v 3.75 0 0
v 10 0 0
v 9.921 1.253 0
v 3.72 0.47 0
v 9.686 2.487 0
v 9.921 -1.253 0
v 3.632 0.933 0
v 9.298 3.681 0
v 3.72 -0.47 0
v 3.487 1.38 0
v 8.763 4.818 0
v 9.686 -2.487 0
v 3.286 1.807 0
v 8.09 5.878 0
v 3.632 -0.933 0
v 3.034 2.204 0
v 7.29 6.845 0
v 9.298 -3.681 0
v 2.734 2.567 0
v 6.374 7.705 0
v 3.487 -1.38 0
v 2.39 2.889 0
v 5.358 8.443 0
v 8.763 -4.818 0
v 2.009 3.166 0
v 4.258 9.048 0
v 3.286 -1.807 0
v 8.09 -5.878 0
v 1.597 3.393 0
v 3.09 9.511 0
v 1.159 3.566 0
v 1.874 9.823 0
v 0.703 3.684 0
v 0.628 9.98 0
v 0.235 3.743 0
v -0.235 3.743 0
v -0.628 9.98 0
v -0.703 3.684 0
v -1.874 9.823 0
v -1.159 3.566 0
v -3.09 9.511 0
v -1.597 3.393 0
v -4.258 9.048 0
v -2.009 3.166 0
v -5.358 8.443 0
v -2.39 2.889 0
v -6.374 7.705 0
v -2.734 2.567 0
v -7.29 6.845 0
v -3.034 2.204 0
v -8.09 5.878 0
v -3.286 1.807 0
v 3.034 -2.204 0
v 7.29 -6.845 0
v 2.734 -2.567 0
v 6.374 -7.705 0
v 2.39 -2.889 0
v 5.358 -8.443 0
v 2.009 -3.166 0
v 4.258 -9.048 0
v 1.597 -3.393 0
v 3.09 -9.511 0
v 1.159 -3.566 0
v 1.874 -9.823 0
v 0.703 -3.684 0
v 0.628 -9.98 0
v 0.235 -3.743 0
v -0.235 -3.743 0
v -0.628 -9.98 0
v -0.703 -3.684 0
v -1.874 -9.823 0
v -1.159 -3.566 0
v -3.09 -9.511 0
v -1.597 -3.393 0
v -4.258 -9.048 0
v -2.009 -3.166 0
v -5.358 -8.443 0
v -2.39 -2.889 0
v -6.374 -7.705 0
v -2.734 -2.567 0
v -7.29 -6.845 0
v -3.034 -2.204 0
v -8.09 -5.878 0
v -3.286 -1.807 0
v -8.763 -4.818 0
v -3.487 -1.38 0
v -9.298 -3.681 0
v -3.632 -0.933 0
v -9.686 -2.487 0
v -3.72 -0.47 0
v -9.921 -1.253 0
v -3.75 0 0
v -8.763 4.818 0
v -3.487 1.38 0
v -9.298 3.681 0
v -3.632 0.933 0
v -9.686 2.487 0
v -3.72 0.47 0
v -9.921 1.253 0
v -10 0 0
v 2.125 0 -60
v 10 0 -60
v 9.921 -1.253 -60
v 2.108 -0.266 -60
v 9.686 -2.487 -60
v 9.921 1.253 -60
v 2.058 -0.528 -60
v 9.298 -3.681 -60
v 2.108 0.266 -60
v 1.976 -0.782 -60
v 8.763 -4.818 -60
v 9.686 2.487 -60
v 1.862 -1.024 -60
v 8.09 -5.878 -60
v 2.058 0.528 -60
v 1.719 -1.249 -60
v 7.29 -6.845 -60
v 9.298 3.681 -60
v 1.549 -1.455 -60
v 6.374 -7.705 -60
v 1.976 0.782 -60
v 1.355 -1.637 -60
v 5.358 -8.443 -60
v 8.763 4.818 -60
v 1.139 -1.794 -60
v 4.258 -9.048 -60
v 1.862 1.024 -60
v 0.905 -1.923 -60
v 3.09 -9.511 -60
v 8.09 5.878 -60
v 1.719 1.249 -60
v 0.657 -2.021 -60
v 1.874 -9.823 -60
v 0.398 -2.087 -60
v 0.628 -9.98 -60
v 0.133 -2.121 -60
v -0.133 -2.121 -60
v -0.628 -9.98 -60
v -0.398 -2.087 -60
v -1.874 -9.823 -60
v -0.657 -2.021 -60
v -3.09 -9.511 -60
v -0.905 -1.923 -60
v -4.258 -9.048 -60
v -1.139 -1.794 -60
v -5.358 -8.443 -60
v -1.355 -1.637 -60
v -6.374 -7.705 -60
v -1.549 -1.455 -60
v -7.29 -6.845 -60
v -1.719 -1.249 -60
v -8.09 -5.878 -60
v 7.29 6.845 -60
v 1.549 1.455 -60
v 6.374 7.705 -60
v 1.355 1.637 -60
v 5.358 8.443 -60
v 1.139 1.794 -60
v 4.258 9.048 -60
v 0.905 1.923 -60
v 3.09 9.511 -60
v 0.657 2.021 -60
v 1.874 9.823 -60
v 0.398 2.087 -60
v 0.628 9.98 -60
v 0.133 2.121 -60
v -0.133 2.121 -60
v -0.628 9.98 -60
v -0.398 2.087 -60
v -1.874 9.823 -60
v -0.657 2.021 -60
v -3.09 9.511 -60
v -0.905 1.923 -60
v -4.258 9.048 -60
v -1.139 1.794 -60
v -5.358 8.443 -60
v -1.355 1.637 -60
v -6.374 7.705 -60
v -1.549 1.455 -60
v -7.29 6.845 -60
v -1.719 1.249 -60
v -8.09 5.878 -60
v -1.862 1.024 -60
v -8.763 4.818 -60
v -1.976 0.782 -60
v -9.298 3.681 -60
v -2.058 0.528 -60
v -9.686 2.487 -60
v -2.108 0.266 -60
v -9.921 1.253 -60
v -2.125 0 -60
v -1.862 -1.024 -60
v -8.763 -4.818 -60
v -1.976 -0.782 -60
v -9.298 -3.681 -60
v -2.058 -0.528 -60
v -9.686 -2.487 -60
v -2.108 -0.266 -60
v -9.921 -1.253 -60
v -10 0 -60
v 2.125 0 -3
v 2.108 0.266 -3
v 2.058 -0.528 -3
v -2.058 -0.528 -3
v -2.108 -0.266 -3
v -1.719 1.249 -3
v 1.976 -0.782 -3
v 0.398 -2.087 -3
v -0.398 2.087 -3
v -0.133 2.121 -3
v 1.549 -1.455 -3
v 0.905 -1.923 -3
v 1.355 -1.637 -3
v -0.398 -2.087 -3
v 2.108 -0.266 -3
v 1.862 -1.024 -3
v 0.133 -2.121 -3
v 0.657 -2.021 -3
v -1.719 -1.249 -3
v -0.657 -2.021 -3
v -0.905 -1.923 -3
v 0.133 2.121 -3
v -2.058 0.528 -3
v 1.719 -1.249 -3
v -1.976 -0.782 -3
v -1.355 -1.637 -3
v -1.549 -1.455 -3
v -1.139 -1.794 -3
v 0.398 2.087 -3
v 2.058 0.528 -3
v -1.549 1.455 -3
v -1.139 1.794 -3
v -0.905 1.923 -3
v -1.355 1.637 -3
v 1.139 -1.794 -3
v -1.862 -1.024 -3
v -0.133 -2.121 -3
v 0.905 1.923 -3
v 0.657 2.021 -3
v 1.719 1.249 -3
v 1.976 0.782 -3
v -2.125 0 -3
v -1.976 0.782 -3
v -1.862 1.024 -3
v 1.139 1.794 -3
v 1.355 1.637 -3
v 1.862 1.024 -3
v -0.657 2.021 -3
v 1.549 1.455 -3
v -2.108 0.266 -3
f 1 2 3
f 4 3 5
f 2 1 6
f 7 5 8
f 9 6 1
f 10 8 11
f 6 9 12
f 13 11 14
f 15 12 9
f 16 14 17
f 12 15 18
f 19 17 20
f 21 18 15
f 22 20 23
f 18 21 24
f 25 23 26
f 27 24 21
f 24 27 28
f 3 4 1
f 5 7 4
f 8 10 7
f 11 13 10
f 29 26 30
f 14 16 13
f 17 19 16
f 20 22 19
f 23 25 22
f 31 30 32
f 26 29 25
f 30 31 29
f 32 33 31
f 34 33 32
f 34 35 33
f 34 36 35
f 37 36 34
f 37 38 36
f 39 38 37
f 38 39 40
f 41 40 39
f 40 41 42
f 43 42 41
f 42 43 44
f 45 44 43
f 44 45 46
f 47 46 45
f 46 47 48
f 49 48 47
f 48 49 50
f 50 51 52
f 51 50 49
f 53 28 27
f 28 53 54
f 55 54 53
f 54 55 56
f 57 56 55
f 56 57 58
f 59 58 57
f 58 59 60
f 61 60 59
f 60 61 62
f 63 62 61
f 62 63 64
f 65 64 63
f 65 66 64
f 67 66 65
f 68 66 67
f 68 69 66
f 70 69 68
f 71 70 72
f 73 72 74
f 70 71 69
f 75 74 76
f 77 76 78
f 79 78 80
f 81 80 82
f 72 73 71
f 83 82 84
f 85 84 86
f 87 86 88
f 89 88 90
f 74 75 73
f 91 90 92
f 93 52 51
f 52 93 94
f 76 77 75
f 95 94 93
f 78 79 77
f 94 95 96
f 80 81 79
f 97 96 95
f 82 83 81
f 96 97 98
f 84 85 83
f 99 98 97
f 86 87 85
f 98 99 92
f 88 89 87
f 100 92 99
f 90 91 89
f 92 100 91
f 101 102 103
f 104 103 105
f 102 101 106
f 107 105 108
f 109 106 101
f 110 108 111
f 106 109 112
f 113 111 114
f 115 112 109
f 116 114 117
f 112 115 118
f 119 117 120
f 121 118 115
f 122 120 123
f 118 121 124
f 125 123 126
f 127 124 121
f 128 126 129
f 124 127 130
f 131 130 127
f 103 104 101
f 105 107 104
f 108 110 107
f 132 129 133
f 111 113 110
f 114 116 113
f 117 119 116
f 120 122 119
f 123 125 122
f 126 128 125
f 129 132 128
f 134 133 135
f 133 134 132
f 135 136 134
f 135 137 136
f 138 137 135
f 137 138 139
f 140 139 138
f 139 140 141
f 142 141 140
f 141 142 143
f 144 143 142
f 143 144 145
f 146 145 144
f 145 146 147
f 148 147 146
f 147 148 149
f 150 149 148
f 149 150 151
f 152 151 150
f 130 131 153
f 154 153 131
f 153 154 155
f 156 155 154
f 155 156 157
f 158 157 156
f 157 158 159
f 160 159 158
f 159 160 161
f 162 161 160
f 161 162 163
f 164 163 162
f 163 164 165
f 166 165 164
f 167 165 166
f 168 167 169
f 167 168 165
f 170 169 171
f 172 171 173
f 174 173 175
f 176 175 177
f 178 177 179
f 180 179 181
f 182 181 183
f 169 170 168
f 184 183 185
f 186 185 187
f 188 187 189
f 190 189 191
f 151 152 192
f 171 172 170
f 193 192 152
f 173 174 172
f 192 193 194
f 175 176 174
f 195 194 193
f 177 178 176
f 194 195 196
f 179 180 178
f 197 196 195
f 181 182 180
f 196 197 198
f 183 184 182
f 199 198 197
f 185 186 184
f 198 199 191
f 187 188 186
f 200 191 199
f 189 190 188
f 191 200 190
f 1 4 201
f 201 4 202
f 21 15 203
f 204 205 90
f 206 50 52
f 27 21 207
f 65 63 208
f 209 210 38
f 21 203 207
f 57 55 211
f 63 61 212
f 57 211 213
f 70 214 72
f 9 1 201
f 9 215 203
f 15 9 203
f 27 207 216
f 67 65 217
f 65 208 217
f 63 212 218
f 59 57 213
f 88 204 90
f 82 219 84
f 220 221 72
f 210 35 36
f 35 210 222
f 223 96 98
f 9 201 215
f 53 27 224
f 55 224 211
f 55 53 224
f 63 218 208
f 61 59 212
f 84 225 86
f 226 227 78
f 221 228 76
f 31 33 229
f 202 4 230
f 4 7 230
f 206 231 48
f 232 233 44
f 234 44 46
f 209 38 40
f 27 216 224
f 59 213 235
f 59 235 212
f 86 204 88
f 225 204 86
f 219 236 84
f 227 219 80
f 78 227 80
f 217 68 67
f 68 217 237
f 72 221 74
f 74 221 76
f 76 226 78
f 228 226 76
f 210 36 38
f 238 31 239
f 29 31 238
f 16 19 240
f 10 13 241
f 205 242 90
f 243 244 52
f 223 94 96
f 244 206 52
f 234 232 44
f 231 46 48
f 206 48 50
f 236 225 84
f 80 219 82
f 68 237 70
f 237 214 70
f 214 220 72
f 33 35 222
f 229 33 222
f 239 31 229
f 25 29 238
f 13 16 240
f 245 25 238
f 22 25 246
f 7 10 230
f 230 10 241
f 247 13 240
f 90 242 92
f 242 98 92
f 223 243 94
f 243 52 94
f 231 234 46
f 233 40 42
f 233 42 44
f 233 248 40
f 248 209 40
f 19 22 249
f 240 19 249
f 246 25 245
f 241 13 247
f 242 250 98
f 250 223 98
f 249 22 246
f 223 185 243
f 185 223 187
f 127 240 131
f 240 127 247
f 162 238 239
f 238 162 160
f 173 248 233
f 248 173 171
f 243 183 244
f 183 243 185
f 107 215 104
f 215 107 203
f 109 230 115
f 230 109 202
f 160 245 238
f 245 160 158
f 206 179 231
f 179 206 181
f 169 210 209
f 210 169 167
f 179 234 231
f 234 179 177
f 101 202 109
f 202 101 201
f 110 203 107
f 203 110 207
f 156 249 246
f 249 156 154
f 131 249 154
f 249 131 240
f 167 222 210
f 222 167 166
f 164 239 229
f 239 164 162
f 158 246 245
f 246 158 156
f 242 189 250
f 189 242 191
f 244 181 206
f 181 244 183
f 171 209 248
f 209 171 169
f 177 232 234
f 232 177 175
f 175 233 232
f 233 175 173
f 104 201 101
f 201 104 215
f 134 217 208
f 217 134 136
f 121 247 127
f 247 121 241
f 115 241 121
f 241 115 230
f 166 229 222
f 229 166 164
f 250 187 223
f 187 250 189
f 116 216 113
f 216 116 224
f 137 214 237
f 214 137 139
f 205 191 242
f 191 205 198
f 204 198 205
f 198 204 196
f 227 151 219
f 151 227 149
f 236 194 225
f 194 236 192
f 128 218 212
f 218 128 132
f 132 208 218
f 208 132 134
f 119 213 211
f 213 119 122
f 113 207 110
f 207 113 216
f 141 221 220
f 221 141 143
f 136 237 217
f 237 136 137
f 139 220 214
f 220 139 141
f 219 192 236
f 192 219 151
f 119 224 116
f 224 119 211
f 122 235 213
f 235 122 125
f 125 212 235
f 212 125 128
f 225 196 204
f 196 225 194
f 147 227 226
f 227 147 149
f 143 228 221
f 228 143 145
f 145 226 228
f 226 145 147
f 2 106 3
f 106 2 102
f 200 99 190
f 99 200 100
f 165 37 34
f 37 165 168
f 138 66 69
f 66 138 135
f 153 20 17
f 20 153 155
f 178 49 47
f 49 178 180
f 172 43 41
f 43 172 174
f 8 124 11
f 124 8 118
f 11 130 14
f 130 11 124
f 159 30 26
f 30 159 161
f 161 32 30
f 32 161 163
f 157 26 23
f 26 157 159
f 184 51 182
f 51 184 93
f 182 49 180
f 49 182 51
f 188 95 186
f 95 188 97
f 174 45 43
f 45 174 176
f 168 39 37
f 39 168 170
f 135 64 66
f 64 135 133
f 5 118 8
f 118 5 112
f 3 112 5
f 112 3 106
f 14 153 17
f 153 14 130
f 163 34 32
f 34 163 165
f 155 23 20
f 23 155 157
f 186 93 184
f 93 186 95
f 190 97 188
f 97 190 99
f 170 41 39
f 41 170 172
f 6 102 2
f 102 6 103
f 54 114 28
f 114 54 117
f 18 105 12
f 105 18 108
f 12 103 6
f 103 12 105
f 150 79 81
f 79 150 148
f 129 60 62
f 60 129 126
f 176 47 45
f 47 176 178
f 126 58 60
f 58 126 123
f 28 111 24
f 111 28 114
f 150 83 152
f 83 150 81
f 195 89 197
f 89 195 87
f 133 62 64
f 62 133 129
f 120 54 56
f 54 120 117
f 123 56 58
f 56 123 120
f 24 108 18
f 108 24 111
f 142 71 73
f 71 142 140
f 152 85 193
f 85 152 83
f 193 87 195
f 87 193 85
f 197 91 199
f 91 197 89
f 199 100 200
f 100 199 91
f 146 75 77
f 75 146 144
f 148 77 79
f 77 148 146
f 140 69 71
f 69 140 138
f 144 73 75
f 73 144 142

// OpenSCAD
$fn = 50;


difference() {
	union() {
		translate(v = [0, 0, -60.0000000000]) {
			cylinder(h = 60, r = 10.0000000000);
		}
		cylinder(h = 0, r = 19.0000000000);
	}
	union() {
		translate(v = [0, 0, 0]) {
			rotate(a = [0, 0, 0]) {
				difference() {
					union() {
						#translate(v = [0, 0, -60.0000000000]) {
							cylinder(h = 60, r = 2.0000000000);
						}
						#translate(v = [0, 0, -3]) {
							cylinder(h = 3, r = 10.0000000000, r1 = 2.1250000000, r2 = 3.7500000000);
						}
						#translate(v = [0, 0, -60.0000000000]) {
							cylinder(h = 60, r = 2.1250000000);
						}
						#translate(v = [0, 0, -60.0000000000]) {
							cylinder(h = 60, r = 2.0000000000);
						}
					}
					union();
				}
			}
		}
	}
}
